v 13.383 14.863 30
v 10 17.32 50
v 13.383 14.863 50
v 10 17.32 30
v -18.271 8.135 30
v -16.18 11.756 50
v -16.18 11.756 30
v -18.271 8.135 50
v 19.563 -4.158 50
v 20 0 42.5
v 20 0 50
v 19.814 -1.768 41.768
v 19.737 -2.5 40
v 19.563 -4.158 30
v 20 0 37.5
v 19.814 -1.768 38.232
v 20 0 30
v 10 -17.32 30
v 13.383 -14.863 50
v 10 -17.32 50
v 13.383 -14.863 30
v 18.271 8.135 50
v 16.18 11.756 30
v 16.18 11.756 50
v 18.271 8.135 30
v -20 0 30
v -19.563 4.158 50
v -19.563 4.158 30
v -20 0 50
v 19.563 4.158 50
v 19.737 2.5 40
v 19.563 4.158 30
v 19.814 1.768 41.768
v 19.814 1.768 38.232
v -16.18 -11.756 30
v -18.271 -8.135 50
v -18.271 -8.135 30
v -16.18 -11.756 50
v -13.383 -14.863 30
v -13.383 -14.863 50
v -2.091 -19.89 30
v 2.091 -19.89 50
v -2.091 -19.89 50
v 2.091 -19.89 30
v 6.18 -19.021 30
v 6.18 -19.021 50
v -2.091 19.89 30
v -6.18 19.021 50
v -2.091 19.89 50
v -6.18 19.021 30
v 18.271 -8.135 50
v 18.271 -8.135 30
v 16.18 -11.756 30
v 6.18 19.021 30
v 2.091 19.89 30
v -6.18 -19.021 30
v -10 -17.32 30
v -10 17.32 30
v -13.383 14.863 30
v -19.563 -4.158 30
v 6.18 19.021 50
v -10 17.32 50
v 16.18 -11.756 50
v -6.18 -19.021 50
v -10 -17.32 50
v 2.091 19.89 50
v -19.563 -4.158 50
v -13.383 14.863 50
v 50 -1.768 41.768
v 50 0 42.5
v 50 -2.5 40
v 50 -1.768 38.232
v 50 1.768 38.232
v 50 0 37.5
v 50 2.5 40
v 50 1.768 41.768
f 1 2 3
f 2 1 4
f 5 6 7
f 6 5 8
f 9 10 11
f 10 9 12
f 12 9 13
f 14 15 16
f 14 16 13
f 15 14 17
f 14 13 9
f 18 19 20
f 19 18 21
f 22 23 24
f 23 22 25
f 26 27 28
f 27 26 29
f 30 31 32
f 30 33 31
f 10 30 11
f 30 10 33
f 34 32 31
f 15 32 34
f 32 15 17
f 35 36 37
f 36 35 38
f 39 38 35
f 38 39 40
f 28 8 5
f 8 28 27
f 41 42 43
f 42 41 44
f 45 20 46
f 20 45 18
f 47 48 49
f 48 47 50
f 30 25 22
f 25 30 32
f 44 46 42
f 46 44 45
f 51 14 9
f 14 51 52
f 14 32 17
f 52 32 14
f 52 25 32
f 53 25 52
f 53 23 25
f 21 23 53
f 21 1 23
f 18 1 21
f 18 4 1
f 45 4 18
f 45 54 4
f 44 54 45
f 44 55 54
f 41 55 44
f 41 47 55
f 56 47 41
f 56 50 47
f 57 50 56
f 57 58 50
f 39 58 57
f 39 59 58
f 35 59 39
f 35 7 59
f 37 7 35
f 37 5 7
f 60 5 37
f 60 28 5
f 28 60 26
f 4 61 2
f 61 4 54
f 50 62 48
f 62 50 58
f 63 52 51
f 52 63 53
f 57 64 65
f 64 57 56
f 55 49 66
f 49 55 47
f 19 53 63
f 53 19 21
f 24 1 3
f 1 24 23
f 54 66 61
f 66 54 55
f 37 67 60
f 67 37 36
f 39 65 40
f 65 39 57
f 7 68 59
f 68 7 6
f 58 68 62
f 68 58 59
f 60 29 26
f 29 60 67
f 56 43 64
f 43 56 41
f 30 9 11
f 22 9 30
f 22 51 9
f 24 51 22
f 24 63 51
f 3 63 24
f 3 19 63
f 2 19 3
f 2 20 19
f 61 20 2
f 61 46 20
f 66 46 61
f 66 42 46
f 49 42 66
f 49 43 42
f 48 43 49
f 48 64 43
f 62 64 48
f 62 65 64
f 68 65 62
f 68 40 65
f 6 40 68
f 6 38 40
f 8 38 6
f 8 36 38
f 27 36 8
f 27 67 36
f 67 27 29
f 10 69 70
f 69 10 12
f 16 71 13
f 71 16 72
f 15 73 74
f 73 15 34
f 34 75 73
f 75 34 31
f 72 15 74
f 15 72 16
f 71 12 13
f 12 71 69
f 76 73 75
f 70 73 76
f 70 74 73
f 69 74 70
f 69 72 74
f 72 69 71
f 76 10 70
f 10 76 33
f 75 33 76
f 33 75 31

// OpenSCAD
// Simple Tank Model in OpenSCAD

// Tank dimensions
tank_length = 100;
tank_width = 60;
tank_height = 30;
turret_diameter = 40;
turret_height = 20;
barrel_length = 50;
barrel_diameter = 5;


// Turret
module turret() {
    translate([0, 0, tank_height + turret_height / 2])
        cylinder(h = turret_height, r = turret_diameter / 2, center = true);
}

// Barrel
module barrel() {
    translate([0, 0, tank_height + turret_height])
        rotate([0, 90, 0])
        translate([(turret_height / 2 ), 0, (barrel_length/2)])
        cylinder(h = barrel_length, r = barrel_diameter / 2, center = true);
}

// Assemble the tank
module tank() {
    turret();
    barrel();
}

tank();
